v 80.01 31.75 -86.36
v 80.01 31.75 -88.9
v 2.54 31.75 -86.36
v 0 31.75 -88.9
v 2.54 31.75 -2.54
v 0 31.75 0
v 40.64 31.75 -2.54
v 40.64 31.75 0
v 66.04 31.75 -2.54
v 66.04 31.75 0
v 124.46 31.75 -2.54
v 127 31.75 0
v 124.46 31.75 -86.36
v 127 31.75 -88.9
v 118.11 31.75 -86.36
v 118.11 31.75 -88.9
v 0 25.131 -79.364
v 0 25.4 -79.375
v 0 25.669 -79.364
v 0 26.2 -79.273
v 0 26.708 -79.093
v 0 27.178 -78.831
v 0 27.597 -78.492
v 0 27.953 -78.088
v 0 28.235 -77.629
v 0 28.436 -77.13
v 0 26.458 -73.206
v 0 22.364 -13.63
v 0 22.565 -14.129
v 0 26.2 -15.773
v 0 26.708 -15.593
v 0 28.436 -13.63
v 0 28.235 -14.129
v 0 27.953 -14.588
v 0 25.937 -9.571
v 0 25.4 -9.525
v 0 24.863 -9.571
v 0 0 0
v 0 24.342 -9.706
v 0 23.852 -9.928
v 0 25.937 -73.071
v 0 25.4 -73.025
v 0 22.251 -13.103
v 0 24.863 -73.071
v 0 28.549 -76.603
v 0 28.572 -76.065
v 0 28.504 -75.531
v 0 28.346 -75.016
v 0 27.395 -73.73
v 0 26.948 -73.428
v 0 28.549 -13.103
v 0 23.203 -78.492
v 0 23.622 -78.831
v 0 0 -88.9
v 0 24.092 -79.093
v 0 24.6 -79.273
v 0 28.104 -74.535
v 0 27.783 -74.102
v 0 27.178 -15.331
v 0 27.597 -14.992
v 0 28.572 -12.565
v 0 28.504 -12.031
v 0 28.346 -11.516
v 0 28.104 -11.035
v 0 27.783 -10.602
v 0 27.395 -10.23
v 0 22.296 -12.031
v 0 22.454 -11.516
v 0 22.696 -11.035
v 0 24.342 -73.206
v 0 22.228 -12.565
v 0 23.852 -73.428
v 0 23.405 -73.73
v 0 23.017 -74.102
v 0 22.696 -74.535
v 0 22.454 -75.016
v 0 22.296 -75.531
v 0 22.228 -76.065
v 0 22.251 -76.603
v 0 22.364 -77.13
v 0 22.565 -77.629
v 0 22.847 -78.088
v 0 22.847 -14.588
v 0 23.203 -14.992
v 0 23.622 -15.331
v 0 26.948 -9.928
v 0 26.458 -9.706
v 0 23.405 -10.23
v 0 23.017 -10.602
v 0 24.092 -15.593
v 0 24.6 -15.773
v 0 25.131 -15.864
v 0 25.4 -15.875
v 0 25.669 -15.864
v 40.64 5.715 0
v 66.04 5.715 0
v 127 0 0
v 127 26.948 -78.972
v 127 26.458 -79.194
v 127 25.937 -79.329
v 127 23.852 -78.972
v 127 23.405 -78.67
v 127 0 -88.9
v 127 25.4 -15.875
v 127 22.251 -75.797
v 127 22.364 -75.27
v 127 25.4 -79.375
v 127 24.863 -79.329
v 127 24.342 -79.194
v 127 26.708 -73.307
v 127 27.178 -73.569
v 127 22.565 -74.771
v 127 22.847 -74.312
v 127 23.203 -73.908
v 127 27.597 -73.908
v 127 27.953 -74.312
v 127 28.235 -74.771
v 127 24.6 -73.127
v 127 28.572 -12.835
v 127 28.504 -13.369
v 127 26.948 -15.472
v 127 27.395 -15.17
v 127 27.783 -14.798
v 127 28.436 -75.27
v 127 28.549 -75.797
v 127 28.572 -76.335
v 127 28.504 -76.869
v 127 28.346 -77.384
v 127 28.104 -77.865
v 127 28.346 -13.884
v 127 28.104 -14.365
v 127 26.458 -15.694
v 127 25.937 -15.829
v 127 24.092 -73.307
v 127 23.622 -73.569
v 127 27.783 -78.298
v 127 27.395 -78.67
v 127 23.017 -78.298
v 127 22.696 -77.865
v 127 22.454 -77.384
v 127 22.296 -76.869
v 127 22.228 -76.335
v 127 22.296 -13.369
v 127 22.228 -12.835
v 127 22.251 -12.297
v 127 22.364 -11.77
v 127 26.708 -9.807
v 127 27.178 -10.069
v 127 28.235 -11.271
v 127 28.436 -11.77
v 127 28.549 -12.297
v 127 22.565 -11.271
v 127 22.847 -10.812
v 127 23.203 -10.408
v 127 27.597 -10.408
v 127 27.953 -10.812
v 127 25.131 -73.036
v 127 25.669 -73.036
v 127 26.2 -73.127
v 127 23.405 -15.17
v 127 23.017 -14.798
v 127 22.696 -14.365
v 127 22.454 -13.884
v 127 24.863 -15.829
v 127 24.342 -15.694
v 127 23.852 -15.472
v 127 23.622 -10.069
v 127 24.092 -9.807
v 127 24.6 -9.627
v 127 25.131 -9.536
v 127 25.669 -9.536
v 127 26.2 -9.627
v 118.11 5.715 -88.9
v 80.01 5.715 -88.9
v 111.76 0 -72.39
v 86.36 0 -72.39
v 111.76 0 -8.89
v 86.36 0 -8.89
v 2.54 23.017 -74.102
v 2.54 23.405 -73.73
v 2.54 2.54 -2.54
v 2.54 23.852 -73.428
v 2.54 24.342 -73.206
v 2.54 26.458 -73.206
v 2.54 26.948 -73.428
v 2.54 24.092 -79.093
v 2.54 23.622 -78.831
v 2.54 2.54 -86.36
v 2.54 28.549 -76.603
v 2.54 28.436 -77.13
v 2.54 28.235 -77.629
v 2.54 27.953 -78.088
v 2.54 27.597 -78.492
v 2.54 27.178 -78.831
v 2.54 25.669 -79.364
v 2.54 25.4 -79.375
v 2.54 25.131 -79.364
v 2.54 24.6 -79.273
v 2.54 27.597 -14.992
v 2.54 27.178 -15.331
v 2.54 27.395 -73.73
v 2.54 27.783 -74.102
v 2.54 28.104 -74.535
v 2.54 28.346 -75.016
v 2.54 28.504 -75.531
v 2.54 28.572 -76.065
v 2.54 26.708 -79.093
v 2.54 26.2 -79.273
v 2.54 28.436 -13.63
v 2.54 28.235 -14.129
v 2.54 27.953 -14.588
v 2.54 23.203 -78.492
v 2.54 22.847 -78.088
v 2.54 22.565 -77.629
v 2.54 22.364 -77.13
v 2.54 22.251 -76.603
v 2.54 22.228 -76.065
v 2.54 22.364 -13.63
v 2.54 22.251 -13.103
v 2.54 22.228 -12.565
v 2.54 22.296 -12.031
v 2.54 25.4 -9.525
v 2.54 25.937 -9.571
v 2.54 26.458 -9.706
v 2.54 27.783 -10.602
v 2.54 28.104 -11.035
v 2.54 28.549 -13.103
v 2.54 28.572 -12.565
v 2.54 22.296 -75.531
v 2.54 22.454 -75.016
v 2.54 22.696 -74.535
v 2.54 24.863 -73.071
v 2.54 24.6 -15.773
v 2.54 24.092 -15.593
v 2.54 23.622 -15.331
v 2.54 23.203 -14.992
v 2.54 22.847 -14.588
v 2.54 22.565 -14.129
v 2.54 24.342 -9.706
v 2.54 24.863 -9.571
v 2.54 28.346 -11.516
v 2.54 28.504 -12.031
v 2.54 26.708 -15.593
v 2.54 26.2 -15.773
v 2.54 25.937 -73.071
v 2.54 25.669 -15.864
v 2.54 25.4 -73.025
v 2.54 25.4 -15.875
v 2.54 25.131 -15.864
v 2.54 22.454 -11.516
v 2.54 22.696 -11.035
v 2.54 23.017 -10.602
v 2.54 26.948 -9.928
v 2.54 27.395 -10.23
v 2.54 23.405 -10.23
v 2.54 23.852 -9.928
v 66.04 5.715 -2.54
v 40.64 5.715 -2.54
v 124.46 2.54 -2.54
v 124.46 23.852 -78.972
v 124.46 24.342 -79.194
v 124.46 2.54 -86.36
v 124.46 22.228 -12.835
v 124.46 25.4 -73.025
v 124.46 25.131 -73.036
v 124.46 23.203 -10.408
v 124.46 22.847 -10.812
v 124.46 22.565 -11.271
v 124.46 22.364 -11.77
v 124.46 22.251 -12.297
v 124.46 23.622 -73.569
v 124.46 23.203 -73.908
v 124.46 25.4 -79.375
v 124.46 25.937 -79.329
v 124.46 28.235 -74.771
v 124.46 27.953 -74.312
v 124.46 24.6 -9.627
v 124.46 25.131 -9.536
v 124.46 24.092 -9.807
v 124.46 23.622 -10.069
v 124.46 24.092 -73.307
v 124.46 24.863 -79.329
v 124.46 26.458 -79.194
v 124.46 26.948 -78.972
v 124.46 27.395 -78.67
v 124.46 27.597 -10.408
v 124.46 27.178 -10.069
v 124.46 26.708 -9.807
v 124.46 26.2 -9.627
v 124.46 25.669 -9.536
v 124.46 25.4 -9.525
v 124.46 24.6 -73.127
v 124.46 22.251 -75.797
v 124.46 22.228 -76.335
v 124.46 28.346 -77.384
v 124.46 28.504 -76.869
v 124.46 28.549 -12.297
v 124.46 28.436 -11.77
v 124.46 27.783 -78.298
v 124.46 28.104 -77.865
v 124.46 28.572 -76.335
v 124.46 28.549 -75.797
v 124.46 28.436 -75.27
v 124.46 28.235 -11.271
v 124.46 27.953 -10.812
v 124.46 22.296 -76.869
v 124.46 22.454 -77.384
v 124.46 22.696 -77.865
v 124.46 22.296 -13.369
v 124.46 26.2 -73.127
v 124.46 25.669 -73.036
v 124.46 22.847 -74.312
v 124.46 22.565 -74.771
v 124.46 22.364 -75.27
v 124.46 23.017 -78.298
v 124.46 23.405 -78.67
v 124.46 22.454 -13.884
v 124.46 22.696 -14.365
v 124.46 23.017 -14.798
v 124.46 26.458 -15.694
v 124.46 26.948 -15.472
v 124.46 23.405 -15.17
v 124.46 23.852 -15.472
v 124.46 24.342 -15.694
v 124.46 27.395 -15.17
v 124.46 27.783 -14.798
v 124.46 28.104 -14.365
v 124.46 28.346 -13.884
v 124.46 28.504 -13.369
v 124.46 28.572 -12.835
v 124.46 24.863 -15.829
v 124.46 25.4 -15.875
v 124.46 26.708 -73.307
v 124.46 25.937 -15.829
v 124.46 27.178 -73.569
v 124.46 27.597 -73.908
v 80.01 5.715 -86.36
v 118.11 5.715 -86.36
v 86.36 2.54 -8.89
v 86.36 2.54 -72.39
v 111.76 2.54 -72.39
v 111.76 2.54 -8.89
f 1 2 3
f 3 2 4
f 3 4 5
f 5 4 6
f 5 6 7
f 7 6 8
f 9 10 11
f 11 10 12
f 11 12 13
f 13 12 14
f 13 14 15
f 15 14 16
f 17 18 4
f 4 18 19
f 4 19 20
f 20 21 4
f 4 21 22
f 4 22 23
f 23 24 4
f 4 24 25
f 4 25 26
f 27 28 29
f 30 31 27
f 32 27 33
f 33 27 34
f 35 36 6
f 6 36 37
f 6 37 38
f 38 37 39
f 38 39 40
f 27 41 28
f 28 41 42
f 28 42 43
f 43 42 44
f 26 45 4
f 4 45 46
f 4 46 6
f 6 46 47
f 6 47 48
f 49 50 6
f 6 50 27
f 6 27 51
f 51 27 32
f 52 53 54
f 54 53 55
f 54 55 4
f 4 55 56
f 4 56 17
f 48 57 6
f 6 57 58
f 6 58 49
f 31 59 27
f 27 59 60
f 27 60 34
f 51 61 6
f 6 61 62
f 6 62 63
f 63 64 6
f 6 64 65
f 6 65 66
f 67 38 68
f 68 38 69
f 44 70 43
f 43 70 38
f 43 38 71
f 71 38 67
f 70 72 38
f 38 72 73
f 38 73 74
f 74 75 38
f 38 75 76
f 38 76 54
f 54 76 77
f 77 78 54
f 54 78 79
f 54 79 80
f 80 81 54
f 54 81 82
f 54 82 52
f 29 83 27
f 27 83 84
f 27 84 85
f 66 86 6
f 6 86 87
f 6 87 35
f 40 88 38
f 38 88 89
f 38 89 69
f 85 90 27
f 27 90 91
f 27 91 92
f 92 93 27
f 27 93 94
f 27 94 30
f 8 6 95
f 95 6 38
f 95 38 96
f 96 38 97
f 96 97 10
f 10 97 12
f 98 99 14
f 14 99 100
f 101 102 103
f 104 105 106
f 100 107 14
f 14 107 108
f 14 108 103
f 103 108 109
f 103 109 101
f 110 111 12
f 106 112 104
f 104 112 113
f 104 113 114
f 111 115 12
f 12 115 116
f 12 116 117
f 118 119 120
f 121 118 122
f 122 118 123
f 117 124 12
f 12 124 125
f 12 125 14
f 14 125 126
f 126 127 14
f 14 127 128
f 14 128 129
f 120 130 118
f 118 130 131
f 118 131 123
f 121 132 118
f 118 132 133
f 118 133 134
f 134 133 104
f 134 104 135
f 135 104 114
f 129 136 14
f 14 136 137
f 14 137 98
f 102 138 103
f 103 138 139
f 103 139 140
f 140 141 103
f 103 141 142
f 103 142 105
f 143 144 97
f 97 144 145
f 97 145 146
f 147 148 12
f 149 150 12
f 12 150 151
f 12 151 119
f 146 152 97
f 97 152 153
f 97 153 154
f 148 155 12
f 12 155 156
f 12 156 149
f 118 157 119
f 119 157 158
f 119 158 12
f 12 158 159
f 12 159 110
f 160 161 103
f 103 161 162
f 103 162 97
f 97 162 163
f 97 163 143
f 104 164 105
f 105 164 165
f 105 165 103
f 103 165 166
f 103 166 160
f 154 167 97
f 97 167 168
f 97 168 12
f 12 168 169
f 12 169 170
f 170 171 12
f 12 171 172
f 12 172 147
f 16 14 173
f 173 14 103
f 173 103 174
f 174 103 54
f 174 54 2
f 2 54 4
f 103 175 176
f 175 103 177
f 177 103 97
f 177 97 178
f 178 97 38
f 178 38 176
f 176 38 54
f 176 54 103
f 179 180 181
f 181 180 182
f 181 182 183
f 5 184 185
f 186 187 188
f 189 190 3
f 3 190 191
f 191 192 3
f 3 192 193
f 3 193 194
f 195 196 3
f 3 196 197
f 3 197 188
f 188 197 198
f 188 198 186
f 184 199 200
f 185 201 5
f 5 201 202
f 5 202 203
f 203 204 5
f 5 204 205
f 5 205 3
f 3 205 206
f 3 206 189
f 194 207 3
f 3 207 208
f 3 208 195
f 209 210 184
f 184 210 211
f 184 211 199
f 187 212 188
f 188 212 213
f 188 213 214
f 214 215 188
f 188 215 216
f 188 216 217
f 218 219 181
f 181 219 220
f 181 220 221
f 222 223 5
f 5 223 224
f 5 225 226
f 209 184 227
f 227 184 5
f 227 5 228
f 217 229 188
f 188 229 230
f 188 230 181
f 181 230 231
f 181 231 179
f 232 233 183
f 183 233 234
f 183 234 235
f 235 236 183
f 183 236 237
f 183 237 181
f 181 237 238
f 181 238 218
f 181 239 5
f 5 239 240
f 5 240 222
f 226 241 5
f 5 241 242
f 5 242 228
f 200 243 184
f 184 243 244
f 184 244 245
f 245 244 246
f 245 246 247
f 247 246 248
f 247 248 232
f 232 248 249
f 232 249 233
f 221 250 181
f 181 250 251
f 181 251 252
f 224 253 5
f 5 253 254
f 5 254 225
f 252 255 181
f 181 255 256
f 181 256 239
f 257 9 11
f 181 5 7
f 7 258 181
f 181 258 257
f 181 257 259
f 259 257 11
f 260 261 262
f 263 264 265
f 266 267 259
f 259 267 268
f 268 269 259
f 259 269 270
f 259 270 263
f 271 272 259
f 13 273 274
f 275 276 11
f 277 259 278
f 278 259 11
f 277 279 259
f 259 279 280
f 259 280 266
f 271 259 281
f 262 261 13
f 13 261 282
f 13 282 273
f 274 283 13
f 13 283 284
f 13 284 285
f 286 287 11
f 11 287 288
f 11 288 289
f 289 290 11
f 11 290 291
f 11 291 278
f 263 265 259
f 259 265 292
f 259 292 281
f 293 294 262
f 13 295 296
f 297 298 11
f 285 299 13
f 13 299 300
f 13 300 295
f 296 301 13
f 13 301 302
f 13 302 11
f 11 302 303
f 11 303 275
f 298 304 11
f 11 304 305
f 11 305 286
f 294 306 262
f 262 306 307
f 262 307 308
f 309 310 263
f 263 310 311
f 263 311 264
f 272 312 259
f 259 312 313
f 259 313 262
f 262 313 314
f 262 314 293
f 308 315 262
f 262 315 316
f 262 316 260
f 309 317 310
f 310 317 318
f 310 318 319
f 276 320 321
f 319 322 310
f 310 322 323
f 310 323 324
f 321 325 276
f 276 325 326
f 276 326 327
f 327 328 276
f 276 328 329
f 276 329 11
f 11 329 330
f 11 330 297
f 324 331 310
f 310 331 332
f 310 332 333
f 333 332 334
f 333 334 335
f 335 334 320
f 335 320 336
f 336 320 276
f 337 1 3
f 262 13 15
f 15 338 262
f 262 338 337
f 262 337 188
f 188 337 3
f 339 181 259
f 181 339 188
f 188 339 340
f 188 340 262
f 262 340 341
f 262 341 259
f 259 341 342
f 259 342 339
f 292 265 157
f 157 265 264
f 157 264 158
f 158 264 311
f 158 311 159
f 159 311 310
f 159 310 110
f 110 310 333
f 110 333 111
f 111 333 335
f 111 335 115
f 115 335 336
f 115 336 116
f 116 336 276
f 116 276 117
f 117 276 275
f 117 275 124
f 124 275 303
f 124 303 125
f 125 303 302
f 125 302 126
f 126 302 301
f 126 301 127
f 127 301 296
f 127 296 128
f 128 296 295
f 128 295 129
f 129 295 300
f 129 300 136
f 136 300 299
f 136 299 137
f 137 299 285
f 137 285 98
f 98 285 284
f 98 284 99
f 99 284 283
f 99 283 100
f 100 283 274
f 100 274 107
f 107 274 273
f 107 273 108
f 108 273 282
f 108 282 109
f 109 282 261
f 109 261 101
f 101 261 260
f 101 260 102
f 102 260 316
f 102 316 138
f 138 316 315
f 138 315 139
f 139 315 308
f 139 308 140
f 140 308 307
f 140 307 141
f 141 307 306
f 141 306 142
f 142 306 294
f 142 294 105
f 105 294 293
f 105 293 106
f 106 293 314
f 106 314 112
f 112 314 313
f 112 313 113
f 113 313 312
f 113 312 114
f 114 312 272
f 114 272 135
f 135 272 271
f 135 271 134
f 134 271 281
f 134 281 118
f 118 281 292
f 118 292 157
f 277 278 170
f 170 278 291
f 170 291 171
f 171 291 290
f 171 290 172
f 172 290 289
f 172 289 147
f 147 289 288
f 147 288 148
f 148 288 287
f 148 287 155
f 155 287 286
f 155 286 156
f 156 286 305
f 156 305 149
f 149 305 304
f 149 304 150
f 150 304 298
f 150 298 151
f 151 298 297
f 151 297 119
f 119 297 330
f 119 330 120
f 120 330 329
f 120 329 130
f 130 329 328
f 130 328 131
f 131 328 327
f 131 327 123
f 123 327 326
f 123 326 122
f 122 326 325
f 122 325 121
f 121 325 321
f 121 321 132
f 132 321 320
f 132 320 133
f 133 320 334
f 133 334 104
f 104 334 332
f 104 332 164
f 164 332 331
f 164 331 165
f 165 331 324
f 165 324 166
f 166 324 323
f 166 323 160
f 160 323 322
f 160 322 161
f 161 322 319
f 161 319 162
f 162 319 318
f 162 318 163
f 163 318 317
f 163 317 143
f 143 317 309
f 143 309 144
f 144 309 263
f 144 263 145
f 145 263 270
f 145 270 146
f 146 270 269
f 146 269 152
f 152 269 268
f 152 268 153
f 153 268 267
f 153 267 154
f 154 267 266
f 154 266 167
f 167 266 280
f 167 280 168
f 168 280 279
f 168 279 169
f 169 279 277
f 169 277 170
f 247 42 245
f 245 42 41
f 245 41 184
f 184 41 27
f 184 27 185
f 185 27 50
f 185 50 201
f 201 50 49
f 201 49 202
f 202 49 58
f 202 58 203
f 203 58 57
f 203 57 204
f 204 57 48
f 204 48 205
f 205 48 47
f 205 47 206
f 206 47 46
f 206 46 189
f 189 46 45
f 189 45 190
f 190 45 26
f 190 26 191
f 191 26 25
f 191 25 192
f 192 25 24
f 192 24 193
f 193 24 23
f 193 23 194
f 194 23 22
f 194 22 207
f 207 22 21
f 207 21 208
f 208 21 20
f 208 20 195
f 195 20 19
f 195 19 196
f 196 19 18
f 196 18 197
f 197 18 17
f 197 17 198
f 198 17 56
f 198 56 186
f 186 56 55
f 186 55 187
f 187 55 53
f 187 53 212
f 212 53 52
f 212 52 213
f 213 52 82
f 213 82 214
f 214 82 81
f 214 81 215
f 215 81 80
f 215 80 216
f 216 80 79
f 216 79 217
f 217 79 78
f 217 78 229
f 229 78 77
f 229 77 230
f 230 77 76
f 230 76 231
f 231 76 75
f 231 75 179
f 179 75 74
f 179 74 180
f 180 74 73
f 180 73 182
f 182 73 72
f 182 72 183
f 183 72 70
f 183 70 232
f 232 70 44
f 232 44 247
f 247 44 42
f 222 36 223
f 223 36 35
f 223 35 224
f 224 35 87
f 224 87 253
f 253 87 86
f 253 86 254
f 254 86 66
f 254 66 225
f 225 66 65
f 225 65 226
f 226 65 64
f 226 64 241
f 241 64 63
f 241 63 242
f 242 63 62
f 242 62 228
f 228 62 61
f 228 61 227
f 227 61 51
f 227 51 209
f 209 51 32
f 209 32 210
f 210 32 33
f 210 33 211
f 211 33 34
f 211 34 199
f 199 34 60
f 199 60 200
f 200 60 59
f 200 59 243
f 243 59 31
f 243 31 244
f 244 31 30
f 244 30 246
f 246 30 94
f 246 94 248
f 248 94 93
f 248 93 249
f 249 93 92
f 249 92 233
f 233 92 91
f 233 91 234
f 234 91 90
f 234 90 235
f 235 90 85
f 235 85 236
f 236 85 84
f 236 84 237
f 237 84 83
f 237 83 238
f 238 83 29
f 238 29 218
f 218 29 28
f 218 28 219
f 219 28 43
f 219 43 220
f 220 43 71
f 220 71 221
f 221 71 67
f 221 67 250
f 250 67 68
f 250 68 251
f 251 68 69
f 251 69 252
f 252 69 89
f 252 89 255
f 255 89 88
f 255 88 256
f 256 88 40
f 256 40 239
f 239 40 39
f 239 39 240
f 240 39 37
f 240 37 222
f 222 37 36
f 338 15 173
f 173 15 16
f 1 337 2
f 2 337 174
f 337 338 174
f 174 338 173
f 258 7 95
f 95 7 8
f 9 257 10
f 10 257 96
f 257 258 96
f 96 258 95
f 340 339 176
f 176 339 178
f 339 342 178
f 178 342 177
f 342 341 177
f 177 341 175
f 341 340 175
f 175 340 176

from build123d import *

# Parameters (mm, degrees)
SKETCH1_W           = 127
SKETCH1_H           = 88.9
BOSS_EXTRUDE1_DEPTH = 31.75
SHELL1_T            = -2.54
SKETCH3_R           = 3.175
CUT_EXTRUDE2_DEPTH  = 31.75
SKETCH4_W           = 38.1
SKETCH4_H           = 26.035
CUT_EXTRUDE3_DEPTH  = 2.54
SKETCH5_W           = 25.4
SKETCH5_H           = 26.035
CUT_EXTRUDE4_DEPTH  = 2.54
SKETCH6_W           = 25.4
SKETCH6_H           = 63.5
CUT_EXTRUDE5_DEPTH  = 2.54


with BuildPart() as part:
    # Sketch1 → Boss-Extrude1 (new body)
    with BuildSketch(Plane(origin=(0, 0, 0), x_dir=(1, 0, 0), z_dir=(0, 1, 0))):
        with Locations((63.5, 44.45)):
            Rectangle(SKETCH1_W, SKETCH1_H)
    extrude(amount=BOSS_EXTRUDE1_DEPTH)

    # Shell1
    shell1_openings = [part.faces().sort_by_distance(p)[0] for p in [
        (63.5, 31.75, -44.45),
    ]]
    offset(amount=SHELL1_T, openings=shell1_openings, kind=Kind.INTERSECTION)

    # Sketch3 → Cut-Extrude2 (cut)
    with BuildSketch(Plane(origin=(127, 0, 0), x_dir=(0, 0, -1), z_dir=(1, 0, 0))):
        with Locations((12.7, 25.4)):
            Circle(SKETCH3_R)
        with Locations((76.2, 25.4)):
            Circle(SKETCH3_R)
    cut_extrude2 = extrude(amount=-CUT_EXTRUDE2_DEPTH, mode=Mode.SUBTRACT)

    # Mirror2: Cut-Extrude2 across plane
    add(cut_extrude2.mirror(Plane(origin=(63.5, 0, 0), x_dir=(0, 0, 1), z_dir=(1, 0, 0))), mode=Mode.SUBTRACT)

    # Sketch4 → Cut-Extrude3 (cut)
    with BuildSketch(Plane(origin=(0, 0, -88.9), x_dir=(-1, 0, 0), z_dir=(0, 0, -1))):
        with Locations((-99.06, 18.7325)):
            Rectangle(SKETCH4_W, SKETCH4_H)
    extrude(amount=-CUT_EXTRUDE3_DEPTH, mode=Mode.SUBTRACT)

    # Sketch5 → Cut-Extrude4 (cut)
    with BuildSketch(Plane.XY):
        with Locations((53.34, 18.7325)):
            Rectangle(SKETCH5_W, SKETCH5_H)
    extrude(amount=-CUT_EXTRUDE4_DEPTH, mode=Mode.SUBTRACT)

    # Sketch6 → Cut-Extrude5 (cut)
    with BuildSketch(Plane.XZ):
        with Locations((99.06, -40.64)):
            Rectangle(SKETCH6_W, SKETCH6_H)
    extrude(amount=-CUT_EXTRUDE5_DEPTH, mode=Mode.SUBTRACT)


solid = part.part
